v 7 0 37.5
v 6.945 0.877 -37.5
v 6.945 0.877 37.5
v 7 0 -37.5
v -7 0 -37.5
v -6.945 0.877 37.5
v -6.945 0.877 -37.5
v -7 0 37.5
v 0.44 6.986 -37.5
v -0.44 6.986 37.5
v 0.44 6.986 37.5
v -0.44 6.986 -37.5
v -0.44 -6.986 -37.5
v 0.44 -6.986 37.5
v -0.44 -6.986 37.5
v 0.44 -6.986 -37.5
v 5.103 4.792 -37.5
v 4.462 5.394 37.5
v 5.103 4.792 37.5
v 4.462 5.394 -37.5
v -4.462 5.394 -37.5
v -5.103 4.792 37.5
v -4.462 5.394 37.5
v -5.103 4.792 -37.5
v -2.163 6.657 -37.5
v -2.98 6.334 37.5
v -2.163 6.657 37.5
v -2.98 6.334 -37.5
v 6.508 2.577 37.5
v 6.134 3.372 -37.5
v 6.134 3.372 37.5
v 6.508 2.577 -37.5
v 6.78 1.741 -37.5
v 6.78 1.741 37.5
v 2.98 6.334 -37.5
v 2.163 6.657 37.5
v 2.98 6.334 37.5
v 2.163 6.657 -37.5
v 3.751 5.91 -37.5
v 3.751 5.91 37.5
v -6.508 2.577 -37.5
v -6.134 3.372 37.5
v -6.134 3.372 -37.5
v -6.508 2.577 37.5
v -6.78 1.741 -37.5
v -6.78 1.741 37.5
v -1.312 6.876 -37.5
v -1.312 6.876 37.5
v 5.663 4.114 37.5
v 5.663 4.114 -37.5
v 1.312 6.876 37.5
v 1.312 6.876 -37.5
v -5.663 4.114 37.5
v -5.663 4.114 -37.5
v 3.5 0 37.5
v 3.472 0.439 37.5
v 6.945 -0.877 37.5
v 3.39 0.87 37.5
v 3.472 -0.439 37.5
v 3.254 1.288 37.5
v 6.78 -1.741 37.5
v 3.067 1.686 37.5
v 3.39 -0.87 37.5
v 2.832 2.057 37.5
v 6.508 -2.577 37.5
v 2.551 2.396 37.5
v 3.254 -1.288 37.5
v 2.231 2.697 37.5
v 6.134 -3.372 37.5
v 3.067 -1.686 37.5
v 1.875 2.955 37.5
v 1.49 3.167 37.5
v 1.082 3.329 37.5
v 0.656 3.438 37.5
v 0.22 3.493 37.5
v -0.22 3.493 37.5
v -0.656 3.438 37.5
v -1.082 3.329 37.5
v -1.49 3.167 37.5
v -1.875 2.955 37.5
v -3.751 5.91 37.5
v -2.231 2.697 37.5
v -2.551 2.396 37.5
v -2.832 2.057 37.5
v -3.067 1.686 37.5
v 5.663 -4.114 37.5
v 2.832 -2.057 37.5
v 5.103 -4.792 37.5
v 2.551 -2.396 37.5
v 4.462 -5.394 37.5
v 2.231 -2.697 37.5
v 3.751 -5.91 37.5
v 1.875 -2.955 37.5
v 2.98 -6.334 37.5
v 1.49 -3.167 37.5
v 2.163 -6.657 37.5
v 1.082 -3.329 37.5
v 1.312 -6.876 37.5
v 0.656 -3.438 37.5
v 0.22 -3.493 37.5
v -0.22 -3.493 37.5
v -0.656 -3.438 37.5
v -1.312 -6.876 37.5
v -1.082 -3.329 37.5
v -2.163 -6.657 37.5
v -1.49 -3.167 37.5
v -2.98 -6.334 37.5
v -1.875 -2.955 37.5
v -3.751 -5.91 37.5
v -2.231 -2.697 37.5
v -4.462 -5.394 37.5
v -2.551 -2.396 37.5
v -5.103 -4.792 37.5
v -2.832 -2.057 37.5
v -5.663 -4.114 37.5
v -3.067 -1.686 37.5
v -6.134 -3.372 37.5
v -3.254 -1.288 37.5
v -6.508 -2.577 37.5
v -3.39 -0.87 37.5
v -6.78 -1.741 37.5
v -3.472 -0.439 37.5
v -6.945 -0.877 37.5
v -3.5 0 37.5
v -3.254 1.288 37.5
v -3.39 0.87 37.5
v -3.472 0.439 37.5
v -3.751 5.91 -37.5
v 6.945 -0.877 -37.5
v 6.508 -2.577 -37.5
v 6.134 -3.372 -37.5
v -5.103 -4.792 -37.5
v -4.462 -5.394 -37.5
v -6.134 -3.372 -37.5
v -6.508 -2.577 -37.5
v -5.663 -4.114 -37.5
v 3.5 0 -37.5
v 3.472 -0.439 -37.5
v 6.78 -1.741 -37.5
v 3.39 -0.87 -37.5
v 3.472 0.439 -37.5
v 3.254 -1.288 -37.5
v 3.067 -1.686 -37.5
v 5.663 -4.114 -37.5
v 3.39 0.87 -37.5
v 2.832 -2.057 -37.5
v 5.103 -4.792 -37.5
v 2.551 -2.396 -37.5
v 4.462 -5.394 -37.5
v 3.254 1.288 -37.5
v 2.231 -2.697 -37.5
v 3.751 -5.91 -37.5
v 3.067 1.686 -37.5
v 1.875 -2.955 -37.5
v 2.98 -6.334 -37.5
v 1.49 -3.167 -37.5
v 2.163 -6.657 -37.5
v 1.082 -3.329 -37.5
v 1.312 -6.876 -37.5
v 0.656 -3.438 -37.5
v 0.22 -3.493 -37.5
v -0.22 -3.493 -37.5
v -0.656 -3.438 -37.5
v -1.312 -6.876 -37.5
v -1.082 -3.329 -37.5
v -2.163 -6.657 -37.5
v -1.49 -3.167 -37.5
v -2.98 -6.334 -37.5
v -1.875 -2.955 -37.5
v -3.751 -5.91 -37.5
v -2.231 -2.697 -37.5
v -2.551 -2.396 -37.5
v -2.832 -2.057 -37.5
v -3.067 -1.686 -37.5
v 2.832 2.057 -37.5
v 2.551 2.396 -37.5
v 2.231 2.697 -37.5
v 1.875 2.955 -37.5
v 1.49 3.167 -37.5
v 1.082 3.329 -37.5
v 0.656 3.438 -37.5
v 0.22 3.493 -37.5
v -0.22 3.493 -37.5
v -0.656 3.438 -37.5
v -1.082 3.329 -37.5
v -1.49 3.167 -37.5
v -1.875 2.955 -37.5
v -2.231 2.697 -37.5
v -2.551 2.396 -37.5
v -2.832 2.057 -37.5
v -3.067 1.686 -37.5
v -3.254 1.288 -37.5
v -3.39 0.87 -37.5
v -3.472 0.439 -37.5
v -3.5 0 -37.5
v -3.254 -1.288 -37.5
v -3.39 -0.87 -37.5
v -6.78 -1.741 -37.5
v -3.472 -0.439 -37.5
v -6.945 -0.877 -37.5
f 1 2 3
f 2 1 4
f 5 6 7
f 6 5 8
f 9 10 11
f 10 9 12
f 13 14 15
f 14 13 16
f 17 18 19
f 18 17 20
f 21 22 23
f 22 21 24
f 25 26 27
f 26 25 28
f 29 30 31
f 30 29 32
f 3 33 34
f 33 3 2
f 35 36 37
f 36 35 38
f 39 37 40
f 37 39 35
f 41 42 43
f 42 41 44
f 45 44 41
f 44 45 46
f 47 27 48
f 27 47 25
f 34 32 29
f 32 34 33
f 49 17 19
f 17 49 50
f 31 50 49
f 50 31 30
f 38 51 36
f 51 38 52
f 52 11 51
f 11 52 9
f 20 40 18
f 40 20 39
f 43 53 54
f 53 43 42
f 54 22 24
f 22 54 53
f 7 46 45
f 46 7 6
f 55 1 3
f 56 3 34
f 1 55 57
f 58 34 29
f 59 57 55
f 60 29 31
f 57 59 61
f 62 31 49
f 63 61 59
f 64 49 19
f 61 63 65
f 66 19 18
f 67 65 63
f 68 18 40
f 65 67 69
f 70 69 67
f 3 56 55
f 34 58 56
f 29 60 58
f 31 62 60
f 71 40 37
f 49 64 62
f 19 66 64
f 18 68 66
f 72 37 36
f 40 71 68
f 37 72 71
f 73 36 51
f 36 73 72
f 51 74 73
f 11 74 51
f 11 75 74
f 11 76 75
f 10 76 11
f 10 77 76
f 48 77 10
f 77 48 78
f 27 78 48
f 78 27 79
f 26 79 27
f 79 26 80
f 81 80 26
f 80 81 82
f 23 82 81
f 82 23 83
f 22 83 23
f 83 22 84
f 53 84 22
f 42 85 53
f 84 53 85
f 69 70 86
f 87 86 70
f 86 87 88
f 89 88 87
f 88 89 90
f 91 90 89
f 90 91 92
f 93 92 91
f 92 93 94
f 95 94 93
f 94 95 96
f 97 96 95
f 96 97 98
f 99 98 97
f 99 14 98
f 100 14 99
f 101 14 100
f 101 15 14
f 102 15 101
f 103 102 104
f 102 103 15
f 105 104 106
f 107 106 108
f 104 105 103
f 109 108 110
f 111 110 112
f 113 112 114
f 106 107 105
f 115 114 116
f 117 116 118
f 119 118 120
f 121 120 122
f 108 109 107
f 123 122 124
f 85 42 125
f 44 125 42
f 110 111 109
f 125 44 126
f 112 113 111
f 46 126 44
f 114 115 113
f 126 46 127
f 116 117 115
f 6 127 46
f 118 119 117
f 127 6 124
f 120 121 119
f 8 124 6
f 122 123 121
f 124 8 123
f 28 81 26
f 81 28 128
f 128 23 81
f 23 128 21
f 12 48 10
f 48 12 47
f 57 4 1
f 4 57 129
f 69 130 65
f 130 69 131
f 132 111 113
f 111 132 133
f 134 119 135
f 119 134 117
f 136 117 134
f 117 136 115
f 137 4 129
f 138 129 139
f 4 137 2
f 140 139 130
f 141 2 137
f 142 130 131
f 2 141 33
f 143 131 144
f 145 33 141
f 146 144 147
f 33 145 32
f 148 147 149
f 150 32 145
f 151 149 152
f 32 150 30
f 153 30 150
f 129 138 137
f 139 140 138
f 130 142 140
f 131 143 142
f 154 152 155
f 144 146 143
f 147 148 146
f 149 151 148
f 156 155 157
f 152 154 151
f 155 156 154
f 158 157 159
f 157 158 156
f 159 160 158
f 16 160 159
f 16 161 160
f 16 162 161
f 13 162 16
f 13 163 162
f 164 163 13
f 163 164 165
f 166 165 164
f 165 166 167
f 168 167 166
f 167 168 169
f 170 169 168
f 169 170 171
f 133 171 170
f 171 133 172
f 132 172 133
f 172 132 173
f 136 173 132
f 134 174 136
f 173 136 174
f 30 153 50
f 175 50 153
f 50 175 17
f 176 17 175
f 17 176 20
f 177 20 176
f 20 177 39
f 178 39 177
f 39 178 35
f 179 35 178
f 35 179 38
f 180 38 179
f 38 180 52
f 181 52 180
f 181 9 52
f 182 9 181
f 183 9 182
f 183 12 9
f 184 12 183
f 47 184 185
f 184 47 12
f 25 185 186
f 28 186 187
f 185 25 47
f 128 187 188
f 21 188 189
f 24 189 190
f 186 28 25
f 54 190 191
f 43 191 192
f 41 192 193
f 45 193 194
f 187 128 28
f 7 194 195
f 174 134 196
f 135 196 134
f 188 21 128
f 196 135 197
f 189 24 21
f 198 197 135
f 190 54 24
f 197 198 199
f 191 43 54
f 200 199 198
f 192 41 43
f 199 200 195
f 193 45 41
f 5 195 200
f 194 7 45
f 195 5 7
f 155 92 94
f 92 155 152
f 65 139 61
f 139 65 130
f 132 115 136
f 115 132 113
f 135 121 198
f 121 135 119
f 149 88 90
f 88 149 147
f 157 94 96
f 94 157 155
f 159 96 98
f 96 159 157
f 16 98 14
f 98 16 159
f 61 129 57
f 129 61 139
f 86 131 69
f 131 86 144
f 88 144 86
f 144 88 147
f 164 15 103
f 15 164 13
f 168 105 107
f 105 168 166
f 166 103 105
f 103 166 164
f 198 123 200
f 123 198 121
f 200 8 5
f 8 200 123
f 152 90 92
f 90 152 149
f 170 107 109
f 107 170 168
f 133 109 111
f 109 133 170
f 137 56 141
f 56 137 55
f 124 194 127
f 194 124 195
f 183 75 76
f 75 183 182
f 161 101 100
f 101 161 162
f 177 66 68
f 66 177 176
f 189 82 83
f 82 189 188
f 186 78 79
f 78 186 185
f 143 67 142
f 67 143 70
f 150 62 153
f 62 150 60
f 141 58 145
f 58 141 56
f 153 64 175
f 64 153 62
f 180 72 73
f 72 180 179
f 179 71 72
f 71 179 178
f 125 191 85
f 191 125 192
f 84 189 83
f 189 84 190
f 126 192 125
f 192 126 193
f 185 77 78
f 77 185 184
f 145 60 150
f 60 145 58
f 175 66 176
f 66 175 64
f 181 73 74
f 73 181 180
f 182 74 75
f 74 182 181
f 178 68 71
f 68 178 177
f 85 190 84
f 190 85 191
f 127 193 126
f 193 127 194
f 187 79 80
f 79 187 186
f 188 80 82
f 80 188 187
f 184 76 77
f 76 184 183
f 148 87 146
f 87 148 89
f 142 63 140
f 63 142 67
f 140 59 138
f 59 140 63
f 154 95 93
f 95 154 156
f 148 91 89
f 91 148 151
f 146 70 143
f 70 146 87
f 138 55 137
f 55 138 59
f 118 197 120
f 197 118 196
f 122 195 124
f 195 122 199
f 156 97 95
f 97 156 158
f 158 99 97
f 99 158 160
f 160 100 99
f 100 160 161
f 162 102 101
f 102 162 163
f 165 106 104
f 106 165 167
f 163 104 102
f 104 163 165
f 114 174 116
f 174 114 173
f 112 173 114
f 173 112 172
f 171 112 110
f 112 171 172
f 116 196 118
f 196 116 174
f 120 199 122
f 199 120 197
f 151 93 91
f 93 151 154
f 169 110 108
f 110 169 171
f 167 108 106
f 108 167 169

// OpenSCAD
$fn = 50;


difference() {
	union() {
		translate(v = [0, 0, -37.5000000000]) {
			cylinder(h = 75, r = 7.0000000000);
		}
	}
	union() {
		translate(v = [0, 0, -100.0000000000]) {
			cylinder(h = 200, r = 3.5000000000);
		}
	}
}
